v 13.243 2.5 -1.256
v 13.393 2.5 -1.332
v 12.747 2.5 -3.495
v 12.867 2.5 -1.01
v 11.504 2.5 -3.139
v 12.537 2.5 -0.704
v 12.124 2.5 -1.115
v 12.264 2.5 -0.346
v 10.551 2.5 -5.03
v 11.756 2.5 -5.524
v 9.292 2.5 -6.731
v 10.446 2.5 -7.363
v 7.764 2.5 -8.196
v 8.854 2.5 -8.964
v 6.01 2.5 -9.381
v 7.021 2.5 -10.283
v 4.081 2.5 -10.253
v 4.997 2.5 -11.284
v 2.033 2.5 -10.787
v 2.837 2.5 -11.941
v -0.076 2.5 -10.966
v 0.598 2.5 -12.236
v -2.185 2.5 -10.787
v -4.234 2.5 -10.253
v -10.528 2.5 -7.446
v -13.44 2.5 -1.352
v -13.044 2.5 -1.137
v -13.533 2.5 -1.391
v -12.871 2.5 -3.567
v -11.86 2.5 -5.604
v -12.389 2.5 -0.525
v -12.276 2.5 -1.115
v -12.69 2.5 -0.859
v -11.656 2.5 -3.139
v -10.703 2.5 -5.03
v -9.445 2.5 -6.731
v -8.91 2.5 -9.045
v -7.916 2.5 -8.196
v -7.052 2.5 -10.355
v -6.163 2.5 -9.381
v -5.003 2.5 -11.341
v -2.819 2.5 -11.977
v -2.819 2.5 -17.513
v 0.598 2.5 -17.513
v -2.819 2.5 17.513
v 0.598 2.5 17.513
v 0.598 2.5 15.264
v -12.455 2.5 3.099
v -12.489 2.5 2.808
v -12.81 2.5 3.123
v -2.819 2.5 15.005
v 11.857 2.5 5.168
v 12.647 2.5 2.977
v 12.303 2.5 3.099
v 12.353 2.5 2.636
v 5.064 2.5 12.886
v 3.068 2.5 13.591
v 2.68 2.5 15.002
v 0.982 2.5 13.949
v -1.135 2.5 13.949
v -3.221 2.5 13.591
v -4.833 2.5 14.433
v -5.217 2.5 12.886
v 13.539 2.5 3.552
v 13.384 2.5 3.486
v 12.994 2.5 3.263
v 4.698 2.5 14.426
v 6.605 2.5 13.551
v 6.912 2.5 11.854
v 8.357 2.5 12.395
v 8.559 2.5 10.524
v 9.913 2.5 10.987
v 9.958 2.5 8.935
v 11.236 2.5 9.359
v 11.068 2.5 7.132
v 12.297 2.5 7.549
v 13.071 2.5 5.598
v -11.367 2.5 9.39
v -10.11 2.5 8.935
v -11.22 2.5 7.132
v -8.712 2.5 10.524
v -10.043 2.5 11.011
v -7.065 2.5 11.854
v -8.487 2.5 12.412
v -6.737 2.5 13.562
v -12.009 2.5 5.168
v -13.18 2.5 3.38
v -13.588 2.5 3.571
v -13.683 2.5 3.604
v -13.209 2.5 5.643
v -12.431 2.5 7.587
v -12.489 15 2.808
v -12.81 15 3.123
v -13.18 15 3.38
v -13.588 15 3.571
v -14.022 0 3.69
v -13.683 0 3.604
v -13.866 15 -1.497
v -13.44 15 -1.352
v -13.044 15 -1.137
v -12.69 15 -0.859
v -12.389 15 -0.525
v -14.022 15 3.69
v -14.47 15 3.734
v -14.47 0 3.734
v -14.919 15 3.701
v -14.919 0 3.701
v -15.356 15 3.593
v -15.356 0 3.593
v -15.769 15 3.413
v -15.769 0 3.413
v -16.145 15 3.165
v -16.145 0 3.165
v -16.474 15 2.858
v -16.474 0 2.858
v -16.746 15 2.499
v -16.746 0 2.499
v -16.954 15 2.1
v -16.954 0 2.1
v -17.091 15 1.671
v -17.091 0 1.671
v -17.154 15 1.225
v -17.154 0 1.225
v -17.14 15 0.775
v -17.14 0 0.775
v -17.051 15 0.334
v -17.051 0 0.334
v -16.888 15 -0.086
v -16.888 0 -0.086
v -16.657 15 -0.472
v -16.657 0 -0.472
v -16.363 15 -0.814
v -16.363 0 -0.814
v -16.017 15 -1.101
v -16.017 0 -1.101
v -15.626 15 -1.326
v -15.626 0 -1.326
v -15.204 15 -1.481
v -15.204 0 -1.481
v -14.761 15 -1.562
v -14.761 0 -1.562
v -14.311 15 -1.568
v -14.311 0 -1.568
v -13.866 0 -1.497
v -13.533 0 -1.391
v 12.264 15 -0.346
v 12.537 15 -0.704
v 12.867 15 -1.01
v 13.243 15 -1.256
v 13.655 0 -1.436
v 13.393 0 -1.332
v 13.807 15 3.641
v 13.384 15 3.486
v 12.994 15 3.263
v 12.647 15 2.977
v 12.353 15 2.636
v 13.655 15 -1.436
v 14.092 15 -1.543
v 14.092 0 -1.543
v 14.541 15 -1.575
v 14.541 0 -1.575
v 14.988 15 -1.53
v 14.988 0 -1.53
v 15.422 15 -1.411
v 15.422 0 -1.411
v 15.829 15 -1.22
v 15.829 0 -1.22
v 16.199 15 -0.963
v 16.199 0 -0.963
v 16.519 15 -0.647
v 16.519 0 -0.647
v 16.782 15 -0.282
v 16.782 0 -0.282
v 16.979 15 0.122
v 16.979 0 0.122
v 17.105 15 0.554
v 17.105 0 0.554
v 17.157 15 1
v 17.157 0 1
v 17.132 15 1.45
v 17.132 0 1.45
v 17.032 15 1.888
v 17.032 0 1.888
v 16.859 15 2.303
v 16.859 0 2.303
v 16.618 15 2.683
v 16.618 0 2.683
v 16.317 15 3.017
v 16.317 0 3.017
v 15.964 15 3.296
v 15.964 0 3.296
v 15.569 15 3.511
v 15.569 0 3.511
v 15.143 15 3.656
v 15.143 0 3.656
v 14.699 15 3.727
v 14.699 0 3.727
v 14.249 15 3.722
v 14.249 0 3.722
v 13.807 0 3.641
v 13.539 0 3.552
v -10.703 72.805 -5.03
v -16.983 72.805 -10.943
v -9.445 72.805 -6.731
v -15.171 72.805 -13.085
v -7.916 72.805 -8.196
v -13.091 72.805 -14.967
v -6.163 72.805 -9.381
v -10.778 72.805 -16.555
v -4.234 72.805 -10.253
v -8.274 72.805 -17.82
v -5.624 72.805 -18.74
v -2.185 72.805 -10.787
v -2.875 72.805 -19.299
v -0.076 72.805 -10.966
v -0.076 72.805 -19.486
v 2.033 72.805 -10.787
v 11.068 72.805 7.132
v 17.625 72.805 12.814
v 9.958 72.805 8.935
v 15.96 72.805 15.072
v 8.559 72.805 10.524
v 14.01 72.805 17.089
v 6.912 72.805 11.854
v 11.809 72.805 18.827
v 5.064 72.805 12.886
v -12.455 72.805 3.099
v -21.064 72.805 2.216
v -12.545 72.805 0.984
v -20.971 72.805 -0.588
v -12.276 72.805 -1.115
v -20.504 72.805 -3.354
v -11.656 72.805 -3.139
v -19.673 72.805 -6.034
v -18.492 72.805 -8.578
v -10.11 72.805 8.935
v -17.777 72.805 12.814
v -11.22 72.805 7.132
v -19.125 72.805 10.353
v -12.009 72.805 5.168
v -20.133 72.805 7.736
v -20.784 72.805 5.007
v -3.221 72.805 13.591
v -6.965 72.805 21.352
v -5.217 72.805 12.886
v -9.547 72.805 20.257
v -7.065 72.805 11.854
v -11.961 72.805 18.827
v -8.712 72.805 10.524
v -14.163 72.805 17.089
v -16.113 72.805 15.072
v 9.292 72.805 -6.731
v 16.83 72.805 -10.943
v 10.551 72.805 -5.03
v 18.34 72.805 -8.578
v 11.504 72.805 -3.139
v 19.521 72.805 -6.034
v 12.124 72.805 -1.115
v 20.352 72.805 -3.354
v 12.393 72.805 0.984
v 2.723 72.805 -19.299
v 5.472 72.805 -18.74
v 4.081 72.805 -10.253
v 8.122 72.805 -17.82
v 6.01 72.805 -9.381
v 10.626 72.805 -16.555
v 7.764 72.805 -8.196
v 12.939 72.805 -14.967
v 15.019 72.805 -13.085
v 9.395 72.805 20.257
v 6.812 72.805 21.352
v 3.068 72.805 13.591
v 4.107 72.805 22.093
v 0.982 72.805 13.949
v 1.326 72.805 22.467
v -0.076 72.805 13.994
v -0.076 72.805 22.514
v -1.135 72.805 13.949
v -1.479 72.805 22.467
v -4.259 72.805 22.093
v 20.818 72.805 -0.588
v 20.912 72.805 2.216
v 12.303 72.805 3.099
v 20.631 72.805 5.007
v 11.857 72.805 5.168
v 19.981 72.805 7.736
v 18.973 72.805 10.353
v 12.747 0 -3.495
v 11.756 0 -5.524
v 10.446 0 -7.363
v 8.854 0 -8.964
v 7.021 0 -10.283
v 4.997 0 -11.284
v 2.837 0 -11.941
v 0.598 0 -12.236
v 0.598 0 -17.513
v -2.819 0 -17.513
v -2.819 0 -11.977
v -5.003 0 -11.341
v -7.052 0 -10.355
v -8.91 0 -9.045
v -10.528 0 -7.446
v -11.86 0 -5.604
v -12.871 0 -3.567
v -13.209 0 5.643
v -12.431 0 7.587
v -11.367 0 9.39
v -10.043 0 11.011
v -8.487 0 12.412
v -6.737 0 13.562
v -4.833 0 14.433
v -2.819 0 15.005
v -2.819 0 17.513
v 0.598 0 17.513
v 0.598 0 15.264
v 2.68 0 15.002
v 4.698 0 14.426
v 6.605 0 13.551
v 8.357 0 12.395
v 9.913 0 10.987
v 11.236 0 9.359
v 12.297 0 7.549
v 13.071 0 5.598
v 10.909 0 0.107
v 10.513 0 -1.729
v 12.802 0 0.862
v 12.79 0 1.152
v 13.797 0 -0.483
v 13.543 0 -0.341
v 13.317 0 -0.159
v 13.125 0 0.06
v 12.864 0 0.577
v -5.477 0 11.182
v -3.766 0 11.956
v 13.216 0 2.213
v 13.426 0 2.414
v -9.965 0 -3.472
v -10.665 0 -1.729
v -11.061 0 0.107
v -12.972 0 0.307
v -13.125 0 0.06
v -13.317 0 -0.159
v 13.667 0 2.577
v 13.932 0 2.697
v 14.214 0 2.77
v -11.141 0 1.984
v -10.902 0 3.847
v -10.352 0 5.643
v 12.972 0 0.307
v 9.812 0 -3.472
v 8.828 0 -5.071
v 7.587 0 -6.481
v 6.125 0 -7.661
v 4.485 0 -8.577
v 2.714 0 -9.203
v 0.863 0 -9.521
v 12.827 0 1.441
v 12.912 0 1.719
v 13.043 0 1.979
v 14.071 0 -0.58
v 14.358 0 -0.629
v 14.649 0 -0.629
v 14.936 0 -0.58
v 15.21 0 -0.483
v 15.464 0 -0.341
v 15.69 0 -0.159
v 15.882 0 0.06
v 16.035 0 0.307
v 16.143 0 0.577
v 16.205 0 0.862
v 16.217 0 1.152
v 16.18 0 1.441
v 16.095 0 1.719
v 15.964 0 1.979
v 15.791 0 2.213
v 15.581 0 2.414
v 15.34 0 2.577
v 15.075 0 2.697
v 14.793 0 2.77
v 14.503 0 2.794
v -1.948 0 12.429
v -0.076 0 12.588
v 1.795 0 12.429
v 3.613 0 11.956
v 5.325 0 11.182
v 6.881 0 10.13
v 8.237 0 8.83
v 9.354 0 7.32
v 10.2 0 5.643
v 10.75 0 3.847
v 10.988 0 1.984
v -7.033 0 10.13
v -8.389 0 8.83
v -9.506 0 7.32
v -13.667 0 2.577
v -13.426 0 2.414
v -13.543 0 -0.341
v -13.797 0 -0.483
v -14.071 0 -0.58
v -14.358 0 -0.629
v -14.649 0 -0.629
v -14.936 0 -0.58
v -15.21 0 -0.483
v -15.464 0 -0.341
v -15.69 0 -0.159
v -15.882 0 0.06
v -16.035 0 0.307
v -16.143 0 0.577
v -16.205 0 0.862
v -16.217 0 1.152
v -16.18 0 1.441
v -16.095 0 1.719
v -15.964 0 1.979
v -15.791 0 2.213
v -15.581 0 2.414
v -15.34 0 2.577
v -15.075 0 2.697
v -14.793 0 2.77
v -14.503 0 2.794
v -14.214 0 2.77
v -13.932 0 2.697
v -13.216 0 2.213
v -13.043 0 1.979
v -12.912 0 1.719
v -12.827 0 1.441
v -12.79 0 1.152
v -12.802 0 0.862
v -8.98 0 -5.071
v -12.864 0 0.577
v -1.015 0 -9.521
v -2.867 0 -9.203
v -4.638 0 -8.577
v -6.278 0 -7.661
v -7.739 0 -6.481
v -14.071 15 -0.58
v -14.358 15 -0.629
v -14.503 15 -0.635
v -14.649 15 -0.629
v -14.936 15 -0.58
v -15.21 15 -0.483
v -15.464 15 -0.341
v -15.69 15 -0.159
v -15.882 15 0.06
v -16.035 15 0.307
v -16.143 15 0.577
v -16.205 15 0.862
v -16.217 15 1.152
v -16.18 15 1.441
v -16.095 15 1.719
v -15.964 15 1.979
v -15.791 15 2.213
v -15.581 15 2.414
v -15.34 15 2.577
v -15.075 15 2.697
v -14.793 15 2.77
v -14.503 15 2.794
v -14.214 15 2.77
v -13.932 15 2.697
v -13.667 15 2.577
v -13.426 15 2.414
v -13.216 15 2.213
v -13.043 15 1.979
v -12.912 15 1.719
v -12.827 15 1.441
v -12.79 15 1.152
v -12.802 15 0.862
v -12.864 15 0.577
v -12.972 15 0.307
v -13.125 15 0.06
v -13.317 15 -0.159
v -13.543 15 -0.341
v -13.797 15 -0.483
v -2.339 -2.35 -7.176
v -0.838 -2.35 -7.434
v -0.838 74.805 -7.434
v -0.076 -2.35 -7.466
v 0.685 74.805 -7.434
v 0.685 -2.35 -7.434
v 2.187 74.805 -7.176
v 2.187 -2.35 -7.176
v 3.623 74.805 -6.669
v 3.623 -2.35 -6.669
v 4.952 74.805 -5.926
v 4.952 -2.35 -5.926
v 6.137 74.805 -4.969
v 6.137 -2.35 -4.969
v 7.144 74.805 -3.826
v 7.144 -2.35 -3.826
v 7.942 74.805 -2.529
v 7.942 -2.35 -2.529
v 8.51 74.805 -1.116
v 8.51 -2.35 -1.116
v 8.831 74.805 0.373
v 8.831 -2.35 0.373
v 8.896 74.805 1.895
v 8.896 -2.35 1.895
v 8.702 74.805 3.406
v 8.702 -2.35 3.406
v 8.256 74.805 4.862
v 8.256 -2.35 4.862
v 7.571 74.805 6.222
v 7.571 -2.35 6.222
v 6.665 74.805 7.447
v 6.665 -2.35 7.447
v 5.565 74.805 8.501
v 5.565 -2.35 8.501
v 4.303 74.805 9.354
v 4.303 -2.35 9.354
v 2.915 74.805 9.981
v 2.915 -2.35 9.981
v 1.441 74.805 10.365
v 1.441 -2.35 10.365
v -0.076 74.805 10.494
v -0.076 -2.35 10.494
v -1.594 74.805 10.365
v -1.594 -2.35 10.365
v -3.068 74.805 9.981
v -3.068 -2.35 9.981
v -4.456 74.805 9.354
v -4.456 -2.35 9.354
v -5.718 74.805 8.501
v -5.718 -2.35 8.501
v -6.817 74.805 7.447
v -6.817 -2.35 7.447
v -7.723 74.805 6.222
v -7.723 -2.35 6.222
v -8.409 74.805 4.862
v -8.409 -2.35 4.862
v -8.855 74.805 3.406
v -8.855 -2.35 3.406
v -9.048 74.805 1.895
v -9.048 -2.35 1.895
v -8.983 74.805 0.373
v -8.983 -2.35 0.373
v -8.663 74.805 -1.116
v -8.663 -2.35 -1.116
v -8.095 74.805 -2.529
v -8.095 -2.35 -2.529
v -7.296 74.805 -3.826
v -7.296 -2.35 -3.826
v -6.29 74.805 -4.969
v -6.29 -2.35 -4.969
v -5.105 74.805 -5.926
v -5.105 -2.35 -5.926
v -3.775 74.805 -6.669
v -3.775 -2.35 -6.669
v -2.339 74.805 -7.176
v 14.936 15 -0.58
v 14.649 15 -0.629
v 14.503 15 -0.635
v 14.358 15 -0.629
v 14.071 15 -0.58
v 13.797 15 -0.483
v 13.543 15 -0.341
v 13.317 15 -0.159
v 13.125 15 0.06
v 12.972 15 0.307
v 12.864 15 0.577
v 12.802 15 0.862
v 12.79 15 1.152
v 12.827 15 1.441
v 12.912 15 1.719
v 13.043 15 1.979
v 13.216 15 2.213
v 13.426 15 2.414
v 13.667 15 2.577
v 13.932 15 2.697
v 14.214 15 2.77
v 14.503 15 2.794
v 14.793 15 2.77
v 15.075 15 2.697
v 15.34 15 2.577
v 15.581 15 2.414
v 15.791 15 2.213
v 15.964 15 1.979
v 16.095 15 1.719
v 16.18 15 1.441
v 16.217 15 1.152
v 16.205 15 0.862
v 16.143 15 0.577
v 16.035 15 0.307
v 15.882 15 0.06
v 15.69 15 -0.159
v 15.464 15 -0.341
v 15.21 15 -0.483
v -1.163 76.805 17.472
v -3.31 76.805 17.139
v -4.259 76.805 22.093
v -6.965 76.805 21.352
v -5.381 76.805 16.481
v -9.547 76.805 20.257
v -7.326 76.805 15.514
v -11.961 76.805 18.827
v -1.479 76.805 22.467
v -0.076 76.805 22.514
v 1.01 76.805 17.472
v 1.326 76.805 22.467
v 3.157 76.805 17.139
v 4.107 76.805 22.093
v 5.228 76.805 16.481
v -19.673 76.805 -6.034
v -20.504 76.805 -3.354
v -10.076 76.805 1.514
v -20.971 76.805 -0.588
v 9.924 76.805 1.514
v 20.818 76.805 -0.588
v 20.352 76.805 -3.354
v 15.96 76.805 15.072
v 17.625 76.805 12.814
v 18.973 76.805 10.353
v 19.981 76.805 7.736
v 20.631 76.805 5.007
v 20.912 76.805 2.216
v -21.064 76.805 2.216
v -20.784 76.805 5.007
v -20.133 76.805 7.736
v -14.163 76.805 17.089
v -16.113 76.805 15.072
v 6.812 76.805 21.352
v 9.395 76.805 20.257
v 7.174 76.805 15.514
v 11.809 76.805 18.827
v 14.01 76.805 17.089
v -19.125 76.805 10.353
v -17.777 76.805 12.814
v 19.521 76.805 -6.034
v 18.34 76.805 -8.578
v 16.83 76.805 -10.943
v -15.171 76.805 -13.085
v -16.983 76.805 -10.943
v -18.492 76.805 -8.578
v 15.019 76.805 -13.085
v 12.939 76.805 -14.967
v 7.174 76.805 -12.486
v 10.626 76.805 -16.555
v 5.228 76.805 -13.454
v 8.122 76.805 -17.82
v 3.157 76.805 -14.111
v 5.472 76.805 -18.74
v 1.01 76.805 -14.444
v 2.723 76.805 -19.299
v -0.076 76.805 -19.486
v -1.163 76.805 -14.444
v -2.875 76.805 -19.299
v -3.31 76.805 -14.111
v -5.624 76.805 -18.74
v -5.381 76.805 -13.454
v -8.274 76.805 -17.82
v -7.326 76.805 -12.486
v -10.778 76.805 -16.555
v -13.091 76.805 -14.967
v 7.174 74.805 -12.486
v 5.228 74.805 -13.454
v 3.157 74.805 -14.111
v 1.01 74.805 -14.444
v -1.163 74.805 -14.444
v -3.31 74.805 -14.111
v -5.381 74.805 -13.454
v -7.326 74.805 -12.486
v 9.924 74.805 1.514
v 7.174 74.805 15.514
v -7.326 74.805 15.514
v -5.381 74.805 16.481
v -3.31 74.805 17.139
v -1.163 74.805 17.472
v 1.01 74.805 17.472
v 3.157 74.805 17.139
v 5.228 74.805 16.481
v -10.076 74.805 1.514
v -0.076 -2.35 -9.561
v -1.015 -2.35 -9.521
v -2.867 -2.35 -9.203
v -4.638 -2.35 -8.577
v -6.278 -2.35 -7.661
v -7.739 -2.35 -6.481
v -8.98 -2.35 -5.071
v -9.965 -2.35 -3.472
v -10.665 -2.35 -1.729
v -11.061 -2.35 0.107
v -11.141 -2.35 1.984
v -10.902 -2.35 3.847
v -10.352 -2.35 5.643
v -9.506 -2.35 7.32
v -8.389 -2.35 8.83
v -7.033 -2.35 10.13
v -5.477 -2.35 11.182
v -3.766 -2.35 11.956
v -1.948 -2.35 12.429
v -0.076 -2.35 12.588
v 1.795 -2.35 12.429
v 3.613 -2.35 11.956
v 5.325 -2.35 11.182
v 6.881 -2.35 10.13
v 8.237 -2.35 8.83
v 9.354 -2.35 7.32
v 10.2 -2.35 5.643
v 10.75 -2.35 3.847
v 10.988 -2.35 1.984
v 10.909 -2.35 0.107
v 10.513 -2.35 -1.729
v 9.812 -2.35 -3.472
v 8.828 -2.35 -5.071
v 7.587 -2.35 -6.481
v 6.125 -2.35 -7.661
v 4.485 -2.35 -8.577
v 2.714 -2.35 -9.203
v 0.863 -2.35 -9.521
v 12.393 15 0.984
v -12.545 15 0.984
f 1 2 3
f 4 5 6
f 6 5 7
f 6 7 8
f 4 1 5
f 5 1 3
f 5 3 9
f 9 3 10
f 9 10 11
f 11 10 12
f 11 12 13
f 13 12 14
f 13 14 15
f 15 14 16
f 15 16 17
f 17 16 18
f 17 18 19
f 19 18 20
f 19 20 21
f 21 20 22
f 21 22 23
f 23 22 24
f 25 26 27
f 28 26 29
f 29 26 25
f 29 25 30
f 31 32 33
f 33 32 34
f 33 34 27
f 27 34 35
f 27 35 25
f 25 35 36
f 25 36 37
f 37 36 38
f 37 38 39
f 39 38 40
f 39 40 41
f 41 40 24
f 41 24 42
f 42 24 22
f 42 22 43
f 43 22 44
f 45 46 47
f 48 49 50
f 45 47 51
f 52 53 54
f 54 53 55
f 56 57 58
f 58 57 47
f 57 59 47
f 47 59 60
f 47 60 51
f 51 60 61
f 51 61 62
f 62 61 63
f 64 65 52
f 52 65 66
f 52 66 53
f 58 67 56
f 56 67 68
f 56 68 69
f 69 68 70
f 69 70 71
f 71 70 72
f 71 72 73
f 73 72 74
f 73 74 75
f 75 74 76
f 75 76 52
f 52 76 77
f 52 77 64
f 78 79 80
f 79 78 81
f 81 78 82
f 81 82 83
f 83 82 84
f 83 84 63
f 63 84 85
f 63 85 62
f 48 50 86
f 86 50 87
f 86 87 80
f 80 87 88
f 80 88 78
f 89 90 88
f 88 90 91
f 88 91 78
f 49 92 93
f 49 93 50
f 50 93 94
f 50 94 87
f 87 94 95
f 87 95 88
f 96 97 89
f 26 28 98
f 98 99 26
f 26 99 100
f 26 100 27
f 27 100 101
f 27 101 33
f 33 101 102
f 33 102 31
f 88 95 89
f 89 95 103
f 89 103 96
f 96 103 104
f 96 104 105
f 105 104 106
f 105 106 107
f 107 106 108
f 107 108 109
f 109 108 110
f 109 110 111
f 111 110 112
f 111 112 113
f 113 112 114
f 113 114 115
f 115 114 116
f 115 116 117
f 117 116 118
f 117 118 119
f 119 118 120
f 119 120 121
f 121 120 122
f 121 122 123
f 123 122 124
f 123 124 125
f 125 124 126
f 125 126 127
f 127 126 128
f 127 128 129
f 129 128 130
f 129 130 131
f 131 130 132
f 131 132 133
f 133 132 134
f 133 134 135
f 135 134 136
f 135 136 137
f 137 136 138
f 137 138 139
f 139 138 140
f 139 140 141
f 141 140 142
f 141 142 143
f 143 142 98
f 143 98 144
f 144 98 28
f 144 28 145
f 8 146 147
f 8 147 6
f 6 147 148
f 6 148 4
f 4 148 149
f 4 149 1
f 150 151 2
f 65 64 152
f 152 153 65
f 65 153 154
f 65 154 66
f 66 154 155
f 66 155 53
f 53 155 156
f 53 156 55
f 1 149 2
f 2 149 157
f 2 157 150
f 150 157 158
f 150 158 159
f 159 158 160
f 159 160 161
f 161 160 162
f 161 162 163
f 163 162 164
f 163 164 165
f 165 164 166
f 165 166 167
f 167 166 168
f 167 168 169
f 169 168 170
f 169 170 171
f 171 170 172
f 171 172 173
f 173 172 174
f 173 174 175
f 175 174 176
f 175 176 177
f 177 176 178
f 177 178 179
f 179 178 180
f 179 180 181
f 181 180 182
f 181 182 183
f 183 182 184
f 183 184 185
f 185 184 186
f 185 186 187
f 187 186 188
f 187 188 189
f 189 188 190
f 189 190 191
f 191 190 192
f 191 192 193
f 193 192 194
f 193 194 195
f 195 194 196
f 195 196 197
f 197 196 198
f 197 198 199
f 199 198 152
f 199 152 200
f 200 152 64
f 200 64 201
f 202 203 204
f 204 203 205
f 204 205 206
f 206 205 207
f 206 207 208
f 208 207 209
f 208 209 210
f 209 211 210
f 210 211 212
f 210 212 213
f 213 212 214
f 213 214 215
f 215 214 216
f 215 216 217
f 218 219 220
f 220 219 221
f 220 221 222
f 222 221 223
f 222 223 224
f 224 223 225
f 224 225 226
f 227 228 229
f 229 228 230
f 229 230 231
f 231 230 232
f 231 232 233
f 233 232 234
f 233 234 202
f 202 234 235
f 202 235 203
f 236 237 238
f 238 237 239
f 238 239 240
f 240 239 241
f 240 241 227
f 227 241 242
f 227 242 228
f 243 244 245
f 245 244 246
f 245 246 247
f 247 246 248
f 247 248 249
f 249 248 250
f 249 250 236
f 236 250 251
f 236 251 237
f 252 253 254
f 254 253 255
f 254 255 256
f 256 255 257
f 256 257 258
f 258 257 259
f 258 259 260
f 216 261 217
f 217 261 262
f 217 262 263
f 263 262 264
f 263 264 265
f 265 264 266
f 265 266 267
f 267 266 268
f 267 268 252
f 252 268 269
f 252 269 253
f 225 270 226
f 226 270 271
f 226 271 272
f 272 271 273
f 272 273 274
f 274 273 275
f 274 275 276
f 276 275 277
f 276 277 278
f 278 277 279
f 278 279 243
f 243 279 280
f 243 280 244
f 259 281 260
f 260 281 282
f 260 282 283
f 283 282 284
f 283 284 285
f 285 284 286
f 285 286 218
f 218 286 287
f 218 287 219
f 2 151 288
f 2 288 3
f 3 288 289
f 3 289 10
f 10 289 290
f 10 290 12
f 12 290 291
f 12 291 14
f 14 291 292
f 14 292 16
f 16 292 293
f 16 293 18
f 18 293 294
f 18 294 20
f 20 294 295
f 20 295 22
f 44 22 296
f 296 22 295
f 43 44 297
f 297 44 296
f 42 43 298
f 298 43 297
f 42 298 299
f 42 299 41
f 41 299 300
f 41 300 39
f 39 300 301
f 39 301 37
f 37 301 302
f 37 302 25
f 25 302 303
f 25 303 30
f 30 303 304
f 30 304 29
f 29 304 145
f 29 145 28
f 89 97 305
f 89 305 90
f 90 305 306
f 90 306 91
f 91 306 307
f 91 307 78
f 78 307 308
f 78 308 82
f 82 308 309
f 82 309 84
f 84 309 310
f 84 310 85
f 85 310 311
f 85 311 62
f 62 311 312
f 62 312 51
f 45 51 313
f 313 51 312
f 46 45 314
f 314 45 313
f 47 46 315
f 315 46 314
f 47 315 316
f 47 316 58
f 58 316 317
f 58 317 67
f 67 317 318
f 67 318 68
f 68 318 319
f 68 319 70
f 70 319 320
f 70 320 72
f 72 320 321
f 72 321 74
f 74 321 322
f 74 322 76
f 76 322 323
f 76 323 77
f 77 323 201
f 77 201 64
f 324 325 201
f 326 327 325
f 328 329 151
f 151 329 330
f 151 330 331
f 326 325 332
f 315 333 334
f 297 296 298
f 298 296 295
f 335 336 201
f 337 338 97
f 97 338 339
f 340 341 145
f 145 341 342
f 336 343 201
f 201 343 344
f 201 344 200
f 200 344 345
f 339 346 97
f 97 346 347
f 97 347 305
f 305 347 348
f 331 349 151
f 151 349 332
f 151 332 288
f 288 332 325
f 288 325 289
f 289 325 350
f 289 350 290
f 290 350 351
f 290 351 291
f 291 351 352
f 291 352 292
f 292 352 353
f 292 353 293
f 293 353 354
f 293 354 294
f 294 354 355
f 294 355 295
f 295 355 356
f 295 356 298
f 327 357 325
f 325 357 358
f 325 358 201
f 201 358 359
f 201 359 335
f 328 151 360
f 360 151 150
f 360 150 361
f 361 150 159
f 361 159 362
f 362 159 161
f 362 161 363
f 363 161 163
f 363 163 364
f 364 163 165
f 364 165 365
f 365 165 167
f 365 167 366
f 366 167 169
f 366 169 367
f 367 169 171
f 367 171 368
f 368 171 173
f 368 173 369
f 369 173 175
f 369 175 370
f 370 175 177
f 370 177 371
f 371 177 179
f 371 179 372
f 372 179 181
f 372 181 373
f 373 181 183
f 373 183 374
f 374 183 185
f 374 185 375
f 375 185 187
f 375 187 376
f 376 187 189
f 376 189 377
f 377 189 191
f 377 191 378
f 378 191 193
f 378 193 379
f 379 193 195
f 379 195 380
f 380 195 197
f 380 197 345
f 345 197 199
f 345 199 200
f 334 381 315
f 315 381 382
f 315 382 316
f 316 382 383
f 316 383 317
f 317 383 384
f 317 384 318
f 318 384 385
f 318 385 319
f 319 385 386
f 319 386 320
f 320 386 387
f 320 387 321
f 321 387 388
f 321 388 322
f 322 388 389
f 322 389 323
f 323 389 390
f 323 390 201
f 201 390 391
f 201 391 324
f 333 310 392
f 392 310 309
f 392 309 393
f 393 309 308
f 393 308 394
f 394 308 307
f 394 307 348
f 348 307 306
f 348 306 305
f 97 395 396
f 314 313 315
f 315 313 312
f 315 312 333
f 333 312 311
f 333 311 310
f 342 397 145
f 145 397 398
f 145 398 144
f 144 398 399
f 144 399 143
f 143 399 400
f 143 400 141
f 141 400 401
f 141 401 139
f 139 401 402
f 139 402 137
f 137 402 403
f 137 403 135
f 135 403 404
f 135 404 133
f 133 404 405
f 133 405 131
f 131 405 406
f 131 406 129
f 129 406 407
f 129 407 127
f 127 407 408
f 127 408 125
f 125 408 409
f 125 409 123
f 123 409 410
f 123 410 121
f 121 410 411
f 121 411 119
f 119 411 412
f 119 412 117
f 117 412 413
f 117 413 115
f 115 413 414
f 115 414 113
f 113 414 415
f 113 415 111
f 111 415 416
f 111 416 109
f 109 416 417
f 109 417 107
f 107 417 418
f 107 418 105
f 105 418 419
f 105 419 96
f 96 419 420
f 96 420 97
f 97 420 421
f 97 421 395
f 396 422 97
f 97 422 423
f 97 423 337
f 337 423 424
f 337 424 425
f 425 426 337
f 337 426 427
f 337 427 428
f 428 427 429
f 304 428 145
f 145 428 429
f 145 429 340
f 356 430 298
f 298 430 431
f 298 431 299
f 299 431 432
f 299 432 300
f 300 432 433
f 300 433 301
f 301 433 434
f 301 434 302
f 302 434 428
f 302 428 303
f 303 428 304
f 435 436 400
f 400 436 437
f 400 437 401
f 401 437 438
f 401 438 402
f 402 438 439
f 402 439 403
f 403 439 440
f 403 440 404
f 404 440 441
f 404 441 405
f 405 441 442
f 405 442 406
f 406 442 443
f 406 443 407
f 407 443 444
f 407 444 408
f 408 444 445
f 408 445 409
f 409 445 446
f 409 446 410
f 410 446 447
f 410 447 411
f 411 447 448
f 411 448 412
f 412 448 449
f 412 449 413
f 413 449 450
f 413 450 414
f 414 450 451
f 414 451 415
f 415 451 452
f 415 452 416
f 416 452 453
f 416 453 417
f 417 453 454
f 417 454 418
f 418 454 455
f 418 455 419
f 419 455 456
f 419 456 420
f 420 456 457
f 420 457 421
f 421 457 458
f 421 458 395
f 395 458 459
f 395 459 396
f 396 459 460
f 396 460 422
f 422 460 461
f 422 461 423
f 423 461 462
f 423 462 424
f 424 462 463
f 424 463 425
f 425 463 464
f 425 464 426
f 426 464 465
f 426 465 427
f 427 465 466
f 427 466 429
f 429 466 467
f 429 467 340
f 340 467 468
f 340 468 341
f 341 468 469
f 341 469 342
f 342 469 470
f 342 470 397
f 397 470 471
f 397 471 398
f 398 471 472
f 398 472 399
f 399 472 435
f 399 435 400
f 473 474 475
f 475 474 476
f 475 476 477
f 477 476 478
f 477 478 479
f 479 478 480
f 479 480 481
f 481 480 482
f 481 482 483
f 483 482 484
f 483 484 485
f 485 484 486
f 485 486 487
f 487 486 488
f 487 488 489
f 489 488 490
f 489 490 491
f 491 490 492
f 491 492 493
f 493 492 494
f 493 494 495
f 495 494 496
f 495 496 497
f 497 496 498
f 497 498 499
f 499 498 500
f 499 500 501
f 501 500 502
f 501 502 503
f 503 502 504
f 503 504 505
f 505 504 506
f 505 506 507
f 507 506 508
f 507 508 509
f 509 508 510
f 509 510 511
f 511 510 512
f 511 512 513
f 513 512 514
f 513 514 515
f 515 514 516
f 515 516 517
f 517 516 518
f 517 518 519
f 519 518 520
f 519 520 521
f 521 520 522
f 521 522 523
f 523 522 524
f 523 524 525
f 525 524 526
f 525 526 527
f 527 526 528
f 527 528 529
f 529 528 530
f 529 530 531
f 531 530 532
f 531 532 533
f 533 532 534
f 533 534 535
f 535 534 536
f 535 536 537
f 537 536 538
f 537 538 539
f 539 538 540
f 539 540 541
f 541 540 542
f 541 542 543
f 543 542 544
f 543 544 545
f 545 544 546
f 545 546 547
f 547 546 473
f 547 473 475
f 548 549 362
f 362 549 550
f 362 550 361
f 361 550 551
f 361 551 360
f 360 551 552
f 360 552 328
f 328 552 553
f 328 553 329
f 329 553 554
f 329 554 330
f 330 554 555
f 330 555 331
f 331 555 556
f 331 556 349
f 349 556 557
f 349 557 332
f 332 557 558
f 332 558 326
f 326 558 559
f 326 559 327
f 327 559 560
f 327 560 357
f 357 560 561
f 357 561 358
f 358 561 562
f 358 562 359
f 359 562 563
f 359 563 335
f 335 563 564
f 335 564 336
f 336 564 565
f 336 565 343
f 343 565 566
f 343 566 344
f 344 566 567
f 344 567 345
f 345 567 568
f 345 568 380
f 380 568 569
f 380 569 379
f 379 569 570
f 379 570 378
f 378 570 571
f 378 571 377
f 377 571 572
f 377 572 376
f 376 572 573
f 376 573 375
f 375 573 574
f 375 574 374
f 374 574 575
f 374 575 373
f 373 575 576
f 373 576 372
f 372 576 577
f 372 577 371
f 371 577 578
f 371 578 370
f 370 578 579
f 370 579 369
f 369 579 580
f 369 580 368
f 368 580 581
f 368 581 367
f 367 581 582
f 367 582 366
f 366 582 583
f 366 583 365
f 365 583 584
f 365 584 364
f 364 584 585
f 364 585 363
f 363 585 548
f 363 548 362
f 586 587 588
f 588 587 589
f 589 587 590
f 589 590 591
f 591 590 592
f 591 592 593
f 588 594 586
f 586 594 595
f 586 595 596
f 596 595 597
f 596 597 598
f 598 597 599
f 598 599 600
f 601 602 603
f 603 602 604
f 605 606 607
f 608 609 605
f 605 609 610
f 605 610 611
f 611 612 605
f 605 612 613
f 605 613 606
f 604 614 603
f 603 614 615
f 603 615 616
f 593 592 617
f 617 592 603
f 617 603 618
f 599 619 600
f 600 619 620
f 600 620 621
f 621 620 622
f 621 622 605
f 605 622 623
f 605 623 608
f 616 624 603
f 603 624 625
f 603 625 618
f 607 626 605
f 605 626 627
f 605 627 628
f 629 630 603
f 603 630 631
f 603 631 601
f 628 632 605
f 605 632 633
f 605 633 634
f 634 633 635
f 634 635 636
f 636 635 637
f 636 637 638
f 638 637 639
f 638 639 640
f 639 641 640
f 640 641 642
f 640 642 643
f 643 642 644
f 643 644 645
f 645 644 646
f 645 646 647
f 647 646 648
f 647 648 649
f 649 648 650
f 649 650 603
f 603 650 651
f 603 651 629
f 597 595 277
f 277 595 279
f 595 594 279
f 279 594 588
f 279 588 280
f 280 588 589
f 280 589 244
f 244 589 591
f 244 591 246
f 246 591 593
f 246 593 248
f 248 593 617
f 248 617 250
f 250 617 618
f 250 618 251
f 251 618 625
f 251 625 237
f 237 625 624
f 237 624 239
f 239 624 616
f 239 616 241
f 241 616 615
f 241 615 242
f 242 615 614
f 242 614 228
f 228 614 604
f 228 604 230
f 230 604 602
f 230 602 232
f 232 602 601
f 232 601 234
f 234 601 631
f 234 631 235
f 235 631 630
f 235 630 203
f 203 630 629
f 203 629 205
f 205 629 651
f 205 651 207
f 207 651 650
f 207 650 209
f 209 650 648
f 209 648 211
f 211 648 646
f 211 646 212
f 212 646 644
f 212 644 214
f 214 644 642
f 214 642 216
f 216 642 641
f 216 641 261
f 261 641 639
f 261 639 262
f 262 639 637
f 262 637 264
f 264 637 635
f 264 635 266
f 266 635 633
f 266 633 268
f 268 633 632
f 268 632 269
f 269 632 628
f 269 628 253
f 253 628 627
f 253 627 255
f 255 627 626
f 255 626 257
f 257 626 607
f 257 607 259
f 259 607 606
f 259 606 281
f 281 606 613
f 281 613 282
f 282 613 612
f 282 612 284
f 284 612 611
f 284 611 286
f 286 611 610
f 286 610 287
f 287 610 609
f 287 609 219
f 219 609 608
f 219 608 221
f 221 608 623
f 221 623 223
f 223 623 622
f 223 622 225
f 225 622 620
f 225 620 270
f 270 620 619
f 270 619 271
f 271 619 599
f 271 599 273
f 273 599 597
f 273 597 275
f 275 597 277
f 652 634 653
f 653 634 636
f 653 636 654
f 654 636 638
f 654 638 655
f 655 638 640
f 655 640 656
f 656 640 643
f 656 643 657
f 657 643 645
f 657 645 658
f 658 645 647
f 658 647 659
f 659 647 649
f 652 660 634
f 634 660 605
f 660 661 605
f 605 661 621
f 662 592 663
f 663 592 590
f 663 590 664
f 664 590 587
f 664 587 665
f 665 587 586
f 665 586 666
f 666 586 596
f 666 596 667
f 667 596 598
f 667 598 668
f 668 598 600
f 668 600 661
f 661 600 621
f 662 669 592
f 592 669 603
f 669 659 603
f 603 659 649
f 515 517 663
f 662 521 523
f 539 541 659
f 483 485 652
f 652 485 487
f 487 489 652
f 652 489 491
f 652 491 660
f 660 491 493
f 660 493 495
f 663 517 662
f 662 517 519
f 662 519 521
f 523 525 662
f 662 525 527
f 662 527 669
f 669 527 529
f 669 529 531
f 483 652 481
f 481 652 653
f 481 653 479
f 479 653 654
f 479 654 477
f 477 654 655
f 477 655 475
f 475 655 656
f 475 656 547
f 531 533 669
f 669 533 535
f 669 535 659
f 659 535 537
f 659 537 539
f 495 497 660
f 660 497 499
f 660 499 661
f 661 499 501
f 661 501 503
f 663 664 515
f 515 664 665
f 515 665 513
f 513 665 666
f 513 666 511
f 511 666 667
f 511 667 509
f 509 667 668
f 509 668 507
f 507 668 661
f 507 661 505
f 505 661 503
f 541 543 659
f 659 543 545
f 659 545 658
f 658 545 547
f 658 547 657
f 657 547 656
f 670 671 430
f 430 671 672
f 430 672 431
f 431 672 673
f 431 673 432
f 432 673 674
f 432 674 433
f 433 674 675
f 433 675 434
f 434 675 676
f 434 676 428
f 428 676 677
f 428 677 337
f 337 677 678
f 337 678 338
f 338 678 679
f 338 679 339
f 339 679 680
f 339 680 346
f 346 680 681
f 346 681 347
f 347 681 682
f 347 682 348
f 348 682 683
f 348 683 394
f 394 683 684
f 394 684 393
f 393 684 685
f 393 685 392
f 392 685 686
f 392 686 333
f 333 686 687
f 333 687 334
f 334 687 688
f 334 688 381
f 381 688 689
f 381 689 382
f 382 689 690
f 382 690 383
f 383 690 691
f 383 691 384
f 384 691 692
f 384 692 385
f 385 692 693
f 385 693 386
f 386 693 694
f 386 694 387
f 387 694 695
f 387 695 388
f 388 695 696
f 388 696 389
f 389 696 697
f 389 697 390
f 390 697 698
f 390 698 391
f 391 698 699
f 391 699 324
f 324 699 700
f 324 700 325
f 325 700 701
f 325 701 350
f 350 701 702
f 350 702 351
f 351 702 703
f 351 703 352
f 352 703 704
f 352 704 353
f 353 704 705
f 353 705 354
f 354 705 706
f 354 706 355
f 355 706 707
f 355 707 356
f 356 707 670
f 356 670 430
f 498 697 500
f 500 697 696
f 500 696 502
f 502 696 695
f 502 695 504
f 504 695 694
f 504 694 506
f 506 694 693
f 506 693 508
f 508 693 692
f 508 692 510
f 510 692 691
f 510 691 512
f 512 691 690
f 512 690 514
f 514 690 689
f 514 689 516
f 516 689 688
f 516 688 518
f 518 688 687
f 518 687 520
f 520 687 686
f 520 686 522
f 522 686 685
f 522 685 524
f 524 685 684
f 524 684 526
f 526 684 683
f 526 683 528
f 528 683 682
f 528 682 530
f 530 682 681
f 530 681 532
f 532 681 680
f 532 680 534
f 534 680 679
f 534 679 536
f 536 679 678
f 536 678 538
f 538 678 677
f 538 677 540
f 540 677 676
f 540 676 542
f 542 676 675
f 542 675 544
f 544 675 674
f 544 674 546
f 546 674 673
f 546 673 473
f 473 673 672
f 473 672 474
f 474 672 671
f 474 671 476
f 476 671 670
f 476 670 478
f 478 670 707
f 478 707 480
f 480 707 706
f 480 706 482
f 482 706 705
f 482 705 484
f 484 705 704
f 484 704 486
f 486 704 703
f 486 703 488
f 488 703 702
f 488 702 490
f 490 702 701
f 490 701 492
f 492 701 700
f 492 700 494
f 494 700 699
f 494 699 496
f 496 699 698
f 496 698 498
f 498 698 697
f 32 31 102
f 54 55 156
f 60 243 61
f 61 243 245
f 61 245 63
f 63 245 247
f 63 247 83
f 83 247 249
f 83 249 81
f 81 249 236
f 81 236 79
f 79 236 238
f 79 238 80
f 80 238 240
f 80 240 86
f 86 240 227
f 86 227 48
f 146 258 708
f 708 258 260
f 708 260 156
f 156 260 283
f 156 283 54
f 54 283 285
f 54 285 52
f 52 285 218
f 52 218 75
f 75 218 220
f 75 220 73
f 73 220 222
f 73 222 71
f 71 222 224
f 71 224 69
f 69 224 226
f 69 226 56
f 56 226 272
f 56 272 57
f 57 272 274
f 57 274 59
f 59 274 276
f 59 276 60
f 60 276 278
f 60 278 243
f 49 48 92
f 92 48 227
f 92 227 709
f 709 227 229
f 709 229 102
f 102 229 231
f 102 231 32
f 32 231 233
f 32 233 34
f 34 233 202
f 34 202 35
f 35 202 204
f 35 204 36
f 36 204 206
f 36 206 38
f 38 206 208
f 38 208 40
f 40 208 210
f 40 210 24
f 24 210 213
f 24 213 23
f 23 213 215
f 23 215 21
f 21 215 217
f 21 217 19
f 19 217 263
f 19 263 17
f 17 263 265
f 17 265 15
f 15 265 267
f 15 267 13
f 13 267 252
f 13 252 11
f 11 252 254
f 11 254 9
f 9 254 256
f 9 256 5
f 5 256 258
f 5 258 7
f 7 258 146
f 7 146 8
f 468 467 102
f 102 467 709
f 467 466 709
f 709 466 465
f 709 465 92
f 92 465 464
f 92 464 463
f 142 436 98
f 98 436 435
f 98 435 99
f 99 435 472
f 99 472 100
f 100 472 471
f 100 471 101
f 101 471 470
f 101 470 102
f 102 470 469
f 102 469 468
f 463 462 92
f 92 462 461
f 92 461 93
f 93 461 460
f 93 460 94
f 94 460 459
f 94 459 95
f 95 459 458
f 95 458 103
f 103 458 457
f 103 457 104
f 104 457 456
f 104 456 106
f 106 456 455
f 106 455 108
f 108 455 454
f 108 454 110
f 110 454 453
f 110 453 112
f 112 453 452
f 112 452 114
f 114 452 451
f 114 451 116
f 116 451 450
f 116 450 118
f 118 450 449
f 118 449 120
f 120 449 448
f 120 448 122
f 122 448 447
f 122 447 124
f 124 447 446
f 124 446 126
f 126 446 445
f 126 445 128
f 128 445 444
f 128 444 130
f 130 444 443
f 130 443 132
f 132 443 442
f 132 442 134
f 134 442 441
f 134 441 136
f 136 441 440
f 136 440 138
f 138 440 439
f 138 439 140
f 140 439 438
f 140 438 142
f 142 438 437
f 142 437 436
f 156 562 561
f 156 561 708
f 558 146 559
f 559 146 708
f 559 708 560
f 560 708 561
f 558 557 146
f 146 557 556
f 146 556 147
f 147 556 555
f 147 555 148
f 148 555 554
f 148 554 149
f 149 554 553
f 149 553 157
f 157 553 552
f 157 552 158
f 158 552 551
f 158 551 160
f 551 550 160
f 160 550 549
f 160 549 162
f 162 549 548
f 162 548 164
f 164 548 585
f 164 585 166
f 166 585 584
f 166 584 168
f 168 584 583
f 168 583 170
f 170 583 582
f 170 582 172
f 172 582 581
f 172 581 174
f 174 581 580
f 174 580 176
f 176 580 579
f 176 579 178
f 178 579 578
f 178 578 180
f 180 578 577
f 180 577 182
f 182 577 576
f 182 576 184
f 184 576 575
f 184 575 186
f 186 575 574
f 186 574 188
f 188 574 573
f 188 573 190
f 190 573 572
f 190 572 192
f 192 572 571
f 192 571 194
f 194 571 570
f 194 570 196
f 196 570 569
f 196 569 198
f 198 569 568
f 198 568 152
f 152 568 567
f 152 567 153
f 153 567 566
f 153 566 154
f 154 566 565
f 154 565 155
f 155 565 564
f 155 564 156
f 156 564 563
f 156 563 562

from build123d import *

# Parameters (mm, degrees)
BOSS_EXTRUDE1_DEPTH = 2.5
CUT_EXTRUDE1_REACH  = 26.645
SKETCH2_R           = 1.715
SKETCH2_R_2         = 8.98
SKETCH3_R           = 2.6543
BOSS_EXTRUDE2_DEPTH = 70.305
BOSS_EXTRUDE3_START = 4
SKETCH4_R           = 21
SKETCH4_R_2         = 8.98
BOSS_EXTRUDE3_DEPTH = 4
SKETCH6_R           = 21
SKETCH6_R_2         = 8.98
BOSS_EXTRUDE4_DEPTH = 2
CUT_EXTRUDE3_START  = -15
SKETCH7_R           = 1.715
CUT_EXTRUDE3_DEPTH  = 15
SKETCH8_R           = 8.98
CUT_EXTRUDE4_DEPTH  = 2
SKETCH9_R           = 11.0744
SKETCH9_R_2         = 8.98
BOSS_EXTRUDE5_DEPTH = 2.35
BOSS_EXTRUDE6_REACH = 82.451
SKETCH10_R          = 12.48
SKETCH10_R_2        = 8.98
SKETCH12_R          = 21
SKETCH12_R_2        = 12.48
CUT_EXTRUDE5_DEPTH  = 57.805


with BuildPart() as part:
    # Sketch1 → Boss-Extrude1 (new body)
    with BuildSketch(Plane(origin=(0, 0, 0), x_dir=(1, 0, 0), z_dir=(0, 1, 0))):
        with BuildLine():
            Line((0.597960958, 12.236443242), (0.597960958, 17.5133))
            Line((0.597960958, 17.5133), (-2.819411684, 17.5133))
            Line((-2.819411684, 17.5133), (-2.819411684, 11.976881697))
            ThreePointArc((-2.819411684, 11.976881697), (-9.752212861, 8.278991937), (-13.533031252, 1.391065316))
            ThreePointArc((-13.533031252, 1.391065316), (-17.156497956, -0.999626805), (-13.683409812, -3.603965207))
            ThreePointArc((-13.683409812, -3.603965207), (-10.042516815, -11.01106651), (-2.819411684, -15.004561697))
            Line((-2.819411684, -15.004561697), (-2.819411684, -17.5133))
            Line((-2.819411684, -17.5133), (0.597960958, -17.5133))
            Line((0.597960958, -17.5133), (0.597960958, -15.264123242))
            ThreePointArc((0.597960958, -15.264123242), (9.161591247, -11.721092084), (13.538839655, -3.55233882))
            ThreePointArc((13.538839655, -3.55233882), (17.156522938, -1.000460972), (13.393344487, 1.331534062))
            ThreePointArc((13.393344487, 1.331534062), (8.853545908, 8.96396608), (0.597960958, 12.236443242))
        make_face()
    extrude(amount=BOSS_EXTRUDE1_DEPTH)

    # Sketch2 → Cut-Extrude1 (cut, up to next)
    with BuildSketch(Plane(origin=(0, 2.5, 0), x_dir=(1, 0, 0), z_dir=(0, 1, 0)), mode=Mode.PRIVATE) as cut_extrude1_sk1:
        with Locations(Location((-14.5034, -1.0795, 0), (0, 0, 270))):
            Circle(SKETCH2_R)
    cut_extrude1_tool1 = extrude(cut_extrude1_sk1.sketch, amount=-CUT_EXTRUDE1_REACH, mode=Mode.PRIVATE) & part.part
    # Sketch2 → Cut-Extrude1 (cut, up to next)
    with BuildSketch(Plane(origin=(0, 2.5, 0), x_dir=(1, 0, 0), z_dir=(0, 1, 0)), mode=Mode.PRIVATE) as cut_extrude1_sk2:
        with Locations(Location((14.5034, -1.0795, 0), (0, 0, 270))):
            Circle(SKETCH2_R)
    cut_extrude1_tool2 = extrude(cut_extrude1_sk2.sketch, amount=-CUT_EXTRUDE1_REACH, mode=Mode.PRIVATE) & part.part
    # Sketch2 → Cut-Extrude1 (cut, up to next)
    with BuildSketch(Plane(origin=(0, 2.5, 0), x_dir=(1, 0, 0), z_dir=(0, 1, 0)), mode=Mode.PRIVATE) as cut_extrude1_sk3:
        with Locations(Location((-0.0762, -1.51384, 0), (0, 0, 270))):
            Circle(SKETCH2_R_2)
    cut_extrude1_tool3 = extrude(cut_extrude1_sk3.sketch, amount=-CUT_EXTRUDE1_REACH, mode=Mode.PRIVATE) & part.part
    add(cut_extrude1_tool1.solids().sort_by_distance((-14.5034, 2.5, 1.0795))[0], mode=Mode.SUBTRACT)
    add(cut_extrude1_tool2.solids().sort_by_distance((14.5034, 2.5, 1.0795))[0], mode=Mode.SUBTRACT)
    add(cut_extrude1_tool3.solids().sort_by_distance((-0.0762, 2.5, 1.51384))[0], mode=Mode.SUBTRACT)

    # Sketch3 → Boss-Extrude2 (add)
    with BuildSketch(Plane(origin=(0, 2.5, 0), x_dir=(1, 0, 0), z_dir=(0, 1, 0))):
        with Locations(Location((-14.5034, -1.0795, 0), (0, 0, 68.556492541))):
            Circle(SKETCH3_R)
        with Locations(Location((14.5034, -1.0795, 0), (0, 0, 114.72164566))):
            Circle(SKETCH3_R)
    extrude(amount=BOSS_EXTRUDE2_DEPTH)

    # Sketch4 → Boss-Extrude3 (add)
    with BuildSketch(Plane(origin=(0, 72.805, 0), x_dir=(1, 0, 0), z_dir=(0, 1, 0)).offset(BOSS_EXTRUDE3_START)):
        with Locations(Location((-0.0762, -1.51384, 0), (0, 0, 270))):
            Circle(SKETCH4_R)
        with Locations(Location((-0.0762, -1.51384, 0), (0, 0, 270))):
            Circle(SKETCH4_R_2, mode=Mode.SUBTRACT)
    extrude(amount=-BOSS_EXTRUDE3_DEPTH)

    # Sketch6 → Boss-Extrude4 (add)
    with BuildSketch(Plane(origin=(0, 37.805, 0), x_dir=(-1, 0, 0), z_dir=(0, -1, 0))):
        with Locations(Location((0.0762, -1.51384, 0), (0, 0, 90))):
            Circle(SKETCH6_R)
        with Locations(Location((0.0762, -1.51384, 0), (0, 0, 270))):
            Circle(SKETCH6_R_2, mode=Mode.SUBTRACT)
    extrude(amount=BOSS_EXTRUDE4_DEPTH)

    # Sketch7 → Cut-Extrude3 (cut)
    with BuildSketch(Plane.XZ.offset(CUT_EXTRUDE3_START)):
        with Locations(Location((-14.5034, 1.0795, 0), (0, 0, 90))):
            Circle(SKETCH7_R)
        with Locations(Location((14.5034, 1.0795, 0), (0, 0, 90))):
            Circle(SKETCH7_R)
    extrude(amount=CUT_EXTRUDE3_DEPTH, mode=Mode.SUBTRACT)

    # Sketch8 → Cut-Extrude4 (cut)
    with BuildSketch(Plane(origin=(0, 76.805, 0), x_dir=(1, 0, 0), z_dir=(0, 1, 0))):
        with BuildLine():
            Line((-10.0762, -1.51384), (-7.3262, -15.51384))
            ThreePointArc((-7.3262, -15.51384), (-0.0762, -17.51384), (7.1738, -15.51384))
            Line((7.1738, -15.51384), (9.9238, -1.51384))
            Line((9.9238, -1.51384), (7.1738, 12.48616))
            ThreePointArc((7.1738, 12.48616), (-0.0762, 14.48616), (-7.3262, 12.48616))
            Line((-7.3262, 12.48616), (-10.0762, -1.51384))
        make_face()
        with Locations(Location((-0.0762, -1.51384, 0), (0, 0, 270))):
            Circle(SKETCH8_R, mode=Mode.SUBTRACT)
    extrude(amount=-CUT_EXTRUDE4_DEPTH, mode=Mode.SUBTRACT)

    # Sketch9 → Boss-Extrude5 (add)
    with BuildSketch(Plane.XZ):
        with Locations(Location((-0.0762, 1.51384, 0), (0, 0, 90))):
            Circle(SKETCH9_R)
        with Locations(Location((-0.0762, 1.51384, 0), (0, 0, 90))):
            Circle(SKETCH9_R_2, mode=Mode.SUBTRACT)
    extrude(amount=BOSS_EXTRUDE5_DEPTH)

    # Boss-Extrude6: up to this face of the body (flat: up to its plane)
    boss_extrude6_end = Plane(part.part.faces().sort_by_distance((-0.0762, 72.805, -18.892190304))[0])
    # Sketch10 → Boss-Extrude6 (add, up to the picked face)
    with BuildSketch(Plane(origin=(0, 2.5, 0), x_dir=(1, 0, 0), z_dir=(0, 1, 0)), mode=Mode.PRIVATE) as boss_extrude6_sk1:
        with Locations((-0.0762, -1.51384)):
            Circle(SKETCH10_R)
        with Locations(Location((-0.0762, -1.51384, 0), (0, 0, 270))):
            Circle(SKETCH10_R_2, mode=Mode.SUBTRACT)
    boss_extrude6_tool1 = split(extrude(boss_extrude6_sk1.sketch, amount=BOSS_EXTRUDE6_REACH, mode=Mode.PRIVATE), bisect_by=boss_extrude6_end, keep=Keep.BOTH, mode=Mode.PRIVATE)
    add(boss_extrude6_tool1.solids().sort_by(Axis((-12.203212, 2.5, 1.51384), (0, 1, 0)))[0])

    # Sketch12 → Cut-Extrude5 (cut)
    with BuildSketch(Plane.XZ.offset(-15)):
        with Locations(Location((-0.0762, 1.51384, 0), (0, 0, 90))):
            Circle(SKETCH12_R)
        with Locations(Location((-0.0762, 1.51384, 0), (0, 0, 189.400360909))):
            Circle(SKETCH12_R_2, mode=Mode.SUBTRACT)
    extrude(amount=-CUT_EXTRUDE5_DEPTH, mode=Mode.SUBTRACT)


solid = part.part
